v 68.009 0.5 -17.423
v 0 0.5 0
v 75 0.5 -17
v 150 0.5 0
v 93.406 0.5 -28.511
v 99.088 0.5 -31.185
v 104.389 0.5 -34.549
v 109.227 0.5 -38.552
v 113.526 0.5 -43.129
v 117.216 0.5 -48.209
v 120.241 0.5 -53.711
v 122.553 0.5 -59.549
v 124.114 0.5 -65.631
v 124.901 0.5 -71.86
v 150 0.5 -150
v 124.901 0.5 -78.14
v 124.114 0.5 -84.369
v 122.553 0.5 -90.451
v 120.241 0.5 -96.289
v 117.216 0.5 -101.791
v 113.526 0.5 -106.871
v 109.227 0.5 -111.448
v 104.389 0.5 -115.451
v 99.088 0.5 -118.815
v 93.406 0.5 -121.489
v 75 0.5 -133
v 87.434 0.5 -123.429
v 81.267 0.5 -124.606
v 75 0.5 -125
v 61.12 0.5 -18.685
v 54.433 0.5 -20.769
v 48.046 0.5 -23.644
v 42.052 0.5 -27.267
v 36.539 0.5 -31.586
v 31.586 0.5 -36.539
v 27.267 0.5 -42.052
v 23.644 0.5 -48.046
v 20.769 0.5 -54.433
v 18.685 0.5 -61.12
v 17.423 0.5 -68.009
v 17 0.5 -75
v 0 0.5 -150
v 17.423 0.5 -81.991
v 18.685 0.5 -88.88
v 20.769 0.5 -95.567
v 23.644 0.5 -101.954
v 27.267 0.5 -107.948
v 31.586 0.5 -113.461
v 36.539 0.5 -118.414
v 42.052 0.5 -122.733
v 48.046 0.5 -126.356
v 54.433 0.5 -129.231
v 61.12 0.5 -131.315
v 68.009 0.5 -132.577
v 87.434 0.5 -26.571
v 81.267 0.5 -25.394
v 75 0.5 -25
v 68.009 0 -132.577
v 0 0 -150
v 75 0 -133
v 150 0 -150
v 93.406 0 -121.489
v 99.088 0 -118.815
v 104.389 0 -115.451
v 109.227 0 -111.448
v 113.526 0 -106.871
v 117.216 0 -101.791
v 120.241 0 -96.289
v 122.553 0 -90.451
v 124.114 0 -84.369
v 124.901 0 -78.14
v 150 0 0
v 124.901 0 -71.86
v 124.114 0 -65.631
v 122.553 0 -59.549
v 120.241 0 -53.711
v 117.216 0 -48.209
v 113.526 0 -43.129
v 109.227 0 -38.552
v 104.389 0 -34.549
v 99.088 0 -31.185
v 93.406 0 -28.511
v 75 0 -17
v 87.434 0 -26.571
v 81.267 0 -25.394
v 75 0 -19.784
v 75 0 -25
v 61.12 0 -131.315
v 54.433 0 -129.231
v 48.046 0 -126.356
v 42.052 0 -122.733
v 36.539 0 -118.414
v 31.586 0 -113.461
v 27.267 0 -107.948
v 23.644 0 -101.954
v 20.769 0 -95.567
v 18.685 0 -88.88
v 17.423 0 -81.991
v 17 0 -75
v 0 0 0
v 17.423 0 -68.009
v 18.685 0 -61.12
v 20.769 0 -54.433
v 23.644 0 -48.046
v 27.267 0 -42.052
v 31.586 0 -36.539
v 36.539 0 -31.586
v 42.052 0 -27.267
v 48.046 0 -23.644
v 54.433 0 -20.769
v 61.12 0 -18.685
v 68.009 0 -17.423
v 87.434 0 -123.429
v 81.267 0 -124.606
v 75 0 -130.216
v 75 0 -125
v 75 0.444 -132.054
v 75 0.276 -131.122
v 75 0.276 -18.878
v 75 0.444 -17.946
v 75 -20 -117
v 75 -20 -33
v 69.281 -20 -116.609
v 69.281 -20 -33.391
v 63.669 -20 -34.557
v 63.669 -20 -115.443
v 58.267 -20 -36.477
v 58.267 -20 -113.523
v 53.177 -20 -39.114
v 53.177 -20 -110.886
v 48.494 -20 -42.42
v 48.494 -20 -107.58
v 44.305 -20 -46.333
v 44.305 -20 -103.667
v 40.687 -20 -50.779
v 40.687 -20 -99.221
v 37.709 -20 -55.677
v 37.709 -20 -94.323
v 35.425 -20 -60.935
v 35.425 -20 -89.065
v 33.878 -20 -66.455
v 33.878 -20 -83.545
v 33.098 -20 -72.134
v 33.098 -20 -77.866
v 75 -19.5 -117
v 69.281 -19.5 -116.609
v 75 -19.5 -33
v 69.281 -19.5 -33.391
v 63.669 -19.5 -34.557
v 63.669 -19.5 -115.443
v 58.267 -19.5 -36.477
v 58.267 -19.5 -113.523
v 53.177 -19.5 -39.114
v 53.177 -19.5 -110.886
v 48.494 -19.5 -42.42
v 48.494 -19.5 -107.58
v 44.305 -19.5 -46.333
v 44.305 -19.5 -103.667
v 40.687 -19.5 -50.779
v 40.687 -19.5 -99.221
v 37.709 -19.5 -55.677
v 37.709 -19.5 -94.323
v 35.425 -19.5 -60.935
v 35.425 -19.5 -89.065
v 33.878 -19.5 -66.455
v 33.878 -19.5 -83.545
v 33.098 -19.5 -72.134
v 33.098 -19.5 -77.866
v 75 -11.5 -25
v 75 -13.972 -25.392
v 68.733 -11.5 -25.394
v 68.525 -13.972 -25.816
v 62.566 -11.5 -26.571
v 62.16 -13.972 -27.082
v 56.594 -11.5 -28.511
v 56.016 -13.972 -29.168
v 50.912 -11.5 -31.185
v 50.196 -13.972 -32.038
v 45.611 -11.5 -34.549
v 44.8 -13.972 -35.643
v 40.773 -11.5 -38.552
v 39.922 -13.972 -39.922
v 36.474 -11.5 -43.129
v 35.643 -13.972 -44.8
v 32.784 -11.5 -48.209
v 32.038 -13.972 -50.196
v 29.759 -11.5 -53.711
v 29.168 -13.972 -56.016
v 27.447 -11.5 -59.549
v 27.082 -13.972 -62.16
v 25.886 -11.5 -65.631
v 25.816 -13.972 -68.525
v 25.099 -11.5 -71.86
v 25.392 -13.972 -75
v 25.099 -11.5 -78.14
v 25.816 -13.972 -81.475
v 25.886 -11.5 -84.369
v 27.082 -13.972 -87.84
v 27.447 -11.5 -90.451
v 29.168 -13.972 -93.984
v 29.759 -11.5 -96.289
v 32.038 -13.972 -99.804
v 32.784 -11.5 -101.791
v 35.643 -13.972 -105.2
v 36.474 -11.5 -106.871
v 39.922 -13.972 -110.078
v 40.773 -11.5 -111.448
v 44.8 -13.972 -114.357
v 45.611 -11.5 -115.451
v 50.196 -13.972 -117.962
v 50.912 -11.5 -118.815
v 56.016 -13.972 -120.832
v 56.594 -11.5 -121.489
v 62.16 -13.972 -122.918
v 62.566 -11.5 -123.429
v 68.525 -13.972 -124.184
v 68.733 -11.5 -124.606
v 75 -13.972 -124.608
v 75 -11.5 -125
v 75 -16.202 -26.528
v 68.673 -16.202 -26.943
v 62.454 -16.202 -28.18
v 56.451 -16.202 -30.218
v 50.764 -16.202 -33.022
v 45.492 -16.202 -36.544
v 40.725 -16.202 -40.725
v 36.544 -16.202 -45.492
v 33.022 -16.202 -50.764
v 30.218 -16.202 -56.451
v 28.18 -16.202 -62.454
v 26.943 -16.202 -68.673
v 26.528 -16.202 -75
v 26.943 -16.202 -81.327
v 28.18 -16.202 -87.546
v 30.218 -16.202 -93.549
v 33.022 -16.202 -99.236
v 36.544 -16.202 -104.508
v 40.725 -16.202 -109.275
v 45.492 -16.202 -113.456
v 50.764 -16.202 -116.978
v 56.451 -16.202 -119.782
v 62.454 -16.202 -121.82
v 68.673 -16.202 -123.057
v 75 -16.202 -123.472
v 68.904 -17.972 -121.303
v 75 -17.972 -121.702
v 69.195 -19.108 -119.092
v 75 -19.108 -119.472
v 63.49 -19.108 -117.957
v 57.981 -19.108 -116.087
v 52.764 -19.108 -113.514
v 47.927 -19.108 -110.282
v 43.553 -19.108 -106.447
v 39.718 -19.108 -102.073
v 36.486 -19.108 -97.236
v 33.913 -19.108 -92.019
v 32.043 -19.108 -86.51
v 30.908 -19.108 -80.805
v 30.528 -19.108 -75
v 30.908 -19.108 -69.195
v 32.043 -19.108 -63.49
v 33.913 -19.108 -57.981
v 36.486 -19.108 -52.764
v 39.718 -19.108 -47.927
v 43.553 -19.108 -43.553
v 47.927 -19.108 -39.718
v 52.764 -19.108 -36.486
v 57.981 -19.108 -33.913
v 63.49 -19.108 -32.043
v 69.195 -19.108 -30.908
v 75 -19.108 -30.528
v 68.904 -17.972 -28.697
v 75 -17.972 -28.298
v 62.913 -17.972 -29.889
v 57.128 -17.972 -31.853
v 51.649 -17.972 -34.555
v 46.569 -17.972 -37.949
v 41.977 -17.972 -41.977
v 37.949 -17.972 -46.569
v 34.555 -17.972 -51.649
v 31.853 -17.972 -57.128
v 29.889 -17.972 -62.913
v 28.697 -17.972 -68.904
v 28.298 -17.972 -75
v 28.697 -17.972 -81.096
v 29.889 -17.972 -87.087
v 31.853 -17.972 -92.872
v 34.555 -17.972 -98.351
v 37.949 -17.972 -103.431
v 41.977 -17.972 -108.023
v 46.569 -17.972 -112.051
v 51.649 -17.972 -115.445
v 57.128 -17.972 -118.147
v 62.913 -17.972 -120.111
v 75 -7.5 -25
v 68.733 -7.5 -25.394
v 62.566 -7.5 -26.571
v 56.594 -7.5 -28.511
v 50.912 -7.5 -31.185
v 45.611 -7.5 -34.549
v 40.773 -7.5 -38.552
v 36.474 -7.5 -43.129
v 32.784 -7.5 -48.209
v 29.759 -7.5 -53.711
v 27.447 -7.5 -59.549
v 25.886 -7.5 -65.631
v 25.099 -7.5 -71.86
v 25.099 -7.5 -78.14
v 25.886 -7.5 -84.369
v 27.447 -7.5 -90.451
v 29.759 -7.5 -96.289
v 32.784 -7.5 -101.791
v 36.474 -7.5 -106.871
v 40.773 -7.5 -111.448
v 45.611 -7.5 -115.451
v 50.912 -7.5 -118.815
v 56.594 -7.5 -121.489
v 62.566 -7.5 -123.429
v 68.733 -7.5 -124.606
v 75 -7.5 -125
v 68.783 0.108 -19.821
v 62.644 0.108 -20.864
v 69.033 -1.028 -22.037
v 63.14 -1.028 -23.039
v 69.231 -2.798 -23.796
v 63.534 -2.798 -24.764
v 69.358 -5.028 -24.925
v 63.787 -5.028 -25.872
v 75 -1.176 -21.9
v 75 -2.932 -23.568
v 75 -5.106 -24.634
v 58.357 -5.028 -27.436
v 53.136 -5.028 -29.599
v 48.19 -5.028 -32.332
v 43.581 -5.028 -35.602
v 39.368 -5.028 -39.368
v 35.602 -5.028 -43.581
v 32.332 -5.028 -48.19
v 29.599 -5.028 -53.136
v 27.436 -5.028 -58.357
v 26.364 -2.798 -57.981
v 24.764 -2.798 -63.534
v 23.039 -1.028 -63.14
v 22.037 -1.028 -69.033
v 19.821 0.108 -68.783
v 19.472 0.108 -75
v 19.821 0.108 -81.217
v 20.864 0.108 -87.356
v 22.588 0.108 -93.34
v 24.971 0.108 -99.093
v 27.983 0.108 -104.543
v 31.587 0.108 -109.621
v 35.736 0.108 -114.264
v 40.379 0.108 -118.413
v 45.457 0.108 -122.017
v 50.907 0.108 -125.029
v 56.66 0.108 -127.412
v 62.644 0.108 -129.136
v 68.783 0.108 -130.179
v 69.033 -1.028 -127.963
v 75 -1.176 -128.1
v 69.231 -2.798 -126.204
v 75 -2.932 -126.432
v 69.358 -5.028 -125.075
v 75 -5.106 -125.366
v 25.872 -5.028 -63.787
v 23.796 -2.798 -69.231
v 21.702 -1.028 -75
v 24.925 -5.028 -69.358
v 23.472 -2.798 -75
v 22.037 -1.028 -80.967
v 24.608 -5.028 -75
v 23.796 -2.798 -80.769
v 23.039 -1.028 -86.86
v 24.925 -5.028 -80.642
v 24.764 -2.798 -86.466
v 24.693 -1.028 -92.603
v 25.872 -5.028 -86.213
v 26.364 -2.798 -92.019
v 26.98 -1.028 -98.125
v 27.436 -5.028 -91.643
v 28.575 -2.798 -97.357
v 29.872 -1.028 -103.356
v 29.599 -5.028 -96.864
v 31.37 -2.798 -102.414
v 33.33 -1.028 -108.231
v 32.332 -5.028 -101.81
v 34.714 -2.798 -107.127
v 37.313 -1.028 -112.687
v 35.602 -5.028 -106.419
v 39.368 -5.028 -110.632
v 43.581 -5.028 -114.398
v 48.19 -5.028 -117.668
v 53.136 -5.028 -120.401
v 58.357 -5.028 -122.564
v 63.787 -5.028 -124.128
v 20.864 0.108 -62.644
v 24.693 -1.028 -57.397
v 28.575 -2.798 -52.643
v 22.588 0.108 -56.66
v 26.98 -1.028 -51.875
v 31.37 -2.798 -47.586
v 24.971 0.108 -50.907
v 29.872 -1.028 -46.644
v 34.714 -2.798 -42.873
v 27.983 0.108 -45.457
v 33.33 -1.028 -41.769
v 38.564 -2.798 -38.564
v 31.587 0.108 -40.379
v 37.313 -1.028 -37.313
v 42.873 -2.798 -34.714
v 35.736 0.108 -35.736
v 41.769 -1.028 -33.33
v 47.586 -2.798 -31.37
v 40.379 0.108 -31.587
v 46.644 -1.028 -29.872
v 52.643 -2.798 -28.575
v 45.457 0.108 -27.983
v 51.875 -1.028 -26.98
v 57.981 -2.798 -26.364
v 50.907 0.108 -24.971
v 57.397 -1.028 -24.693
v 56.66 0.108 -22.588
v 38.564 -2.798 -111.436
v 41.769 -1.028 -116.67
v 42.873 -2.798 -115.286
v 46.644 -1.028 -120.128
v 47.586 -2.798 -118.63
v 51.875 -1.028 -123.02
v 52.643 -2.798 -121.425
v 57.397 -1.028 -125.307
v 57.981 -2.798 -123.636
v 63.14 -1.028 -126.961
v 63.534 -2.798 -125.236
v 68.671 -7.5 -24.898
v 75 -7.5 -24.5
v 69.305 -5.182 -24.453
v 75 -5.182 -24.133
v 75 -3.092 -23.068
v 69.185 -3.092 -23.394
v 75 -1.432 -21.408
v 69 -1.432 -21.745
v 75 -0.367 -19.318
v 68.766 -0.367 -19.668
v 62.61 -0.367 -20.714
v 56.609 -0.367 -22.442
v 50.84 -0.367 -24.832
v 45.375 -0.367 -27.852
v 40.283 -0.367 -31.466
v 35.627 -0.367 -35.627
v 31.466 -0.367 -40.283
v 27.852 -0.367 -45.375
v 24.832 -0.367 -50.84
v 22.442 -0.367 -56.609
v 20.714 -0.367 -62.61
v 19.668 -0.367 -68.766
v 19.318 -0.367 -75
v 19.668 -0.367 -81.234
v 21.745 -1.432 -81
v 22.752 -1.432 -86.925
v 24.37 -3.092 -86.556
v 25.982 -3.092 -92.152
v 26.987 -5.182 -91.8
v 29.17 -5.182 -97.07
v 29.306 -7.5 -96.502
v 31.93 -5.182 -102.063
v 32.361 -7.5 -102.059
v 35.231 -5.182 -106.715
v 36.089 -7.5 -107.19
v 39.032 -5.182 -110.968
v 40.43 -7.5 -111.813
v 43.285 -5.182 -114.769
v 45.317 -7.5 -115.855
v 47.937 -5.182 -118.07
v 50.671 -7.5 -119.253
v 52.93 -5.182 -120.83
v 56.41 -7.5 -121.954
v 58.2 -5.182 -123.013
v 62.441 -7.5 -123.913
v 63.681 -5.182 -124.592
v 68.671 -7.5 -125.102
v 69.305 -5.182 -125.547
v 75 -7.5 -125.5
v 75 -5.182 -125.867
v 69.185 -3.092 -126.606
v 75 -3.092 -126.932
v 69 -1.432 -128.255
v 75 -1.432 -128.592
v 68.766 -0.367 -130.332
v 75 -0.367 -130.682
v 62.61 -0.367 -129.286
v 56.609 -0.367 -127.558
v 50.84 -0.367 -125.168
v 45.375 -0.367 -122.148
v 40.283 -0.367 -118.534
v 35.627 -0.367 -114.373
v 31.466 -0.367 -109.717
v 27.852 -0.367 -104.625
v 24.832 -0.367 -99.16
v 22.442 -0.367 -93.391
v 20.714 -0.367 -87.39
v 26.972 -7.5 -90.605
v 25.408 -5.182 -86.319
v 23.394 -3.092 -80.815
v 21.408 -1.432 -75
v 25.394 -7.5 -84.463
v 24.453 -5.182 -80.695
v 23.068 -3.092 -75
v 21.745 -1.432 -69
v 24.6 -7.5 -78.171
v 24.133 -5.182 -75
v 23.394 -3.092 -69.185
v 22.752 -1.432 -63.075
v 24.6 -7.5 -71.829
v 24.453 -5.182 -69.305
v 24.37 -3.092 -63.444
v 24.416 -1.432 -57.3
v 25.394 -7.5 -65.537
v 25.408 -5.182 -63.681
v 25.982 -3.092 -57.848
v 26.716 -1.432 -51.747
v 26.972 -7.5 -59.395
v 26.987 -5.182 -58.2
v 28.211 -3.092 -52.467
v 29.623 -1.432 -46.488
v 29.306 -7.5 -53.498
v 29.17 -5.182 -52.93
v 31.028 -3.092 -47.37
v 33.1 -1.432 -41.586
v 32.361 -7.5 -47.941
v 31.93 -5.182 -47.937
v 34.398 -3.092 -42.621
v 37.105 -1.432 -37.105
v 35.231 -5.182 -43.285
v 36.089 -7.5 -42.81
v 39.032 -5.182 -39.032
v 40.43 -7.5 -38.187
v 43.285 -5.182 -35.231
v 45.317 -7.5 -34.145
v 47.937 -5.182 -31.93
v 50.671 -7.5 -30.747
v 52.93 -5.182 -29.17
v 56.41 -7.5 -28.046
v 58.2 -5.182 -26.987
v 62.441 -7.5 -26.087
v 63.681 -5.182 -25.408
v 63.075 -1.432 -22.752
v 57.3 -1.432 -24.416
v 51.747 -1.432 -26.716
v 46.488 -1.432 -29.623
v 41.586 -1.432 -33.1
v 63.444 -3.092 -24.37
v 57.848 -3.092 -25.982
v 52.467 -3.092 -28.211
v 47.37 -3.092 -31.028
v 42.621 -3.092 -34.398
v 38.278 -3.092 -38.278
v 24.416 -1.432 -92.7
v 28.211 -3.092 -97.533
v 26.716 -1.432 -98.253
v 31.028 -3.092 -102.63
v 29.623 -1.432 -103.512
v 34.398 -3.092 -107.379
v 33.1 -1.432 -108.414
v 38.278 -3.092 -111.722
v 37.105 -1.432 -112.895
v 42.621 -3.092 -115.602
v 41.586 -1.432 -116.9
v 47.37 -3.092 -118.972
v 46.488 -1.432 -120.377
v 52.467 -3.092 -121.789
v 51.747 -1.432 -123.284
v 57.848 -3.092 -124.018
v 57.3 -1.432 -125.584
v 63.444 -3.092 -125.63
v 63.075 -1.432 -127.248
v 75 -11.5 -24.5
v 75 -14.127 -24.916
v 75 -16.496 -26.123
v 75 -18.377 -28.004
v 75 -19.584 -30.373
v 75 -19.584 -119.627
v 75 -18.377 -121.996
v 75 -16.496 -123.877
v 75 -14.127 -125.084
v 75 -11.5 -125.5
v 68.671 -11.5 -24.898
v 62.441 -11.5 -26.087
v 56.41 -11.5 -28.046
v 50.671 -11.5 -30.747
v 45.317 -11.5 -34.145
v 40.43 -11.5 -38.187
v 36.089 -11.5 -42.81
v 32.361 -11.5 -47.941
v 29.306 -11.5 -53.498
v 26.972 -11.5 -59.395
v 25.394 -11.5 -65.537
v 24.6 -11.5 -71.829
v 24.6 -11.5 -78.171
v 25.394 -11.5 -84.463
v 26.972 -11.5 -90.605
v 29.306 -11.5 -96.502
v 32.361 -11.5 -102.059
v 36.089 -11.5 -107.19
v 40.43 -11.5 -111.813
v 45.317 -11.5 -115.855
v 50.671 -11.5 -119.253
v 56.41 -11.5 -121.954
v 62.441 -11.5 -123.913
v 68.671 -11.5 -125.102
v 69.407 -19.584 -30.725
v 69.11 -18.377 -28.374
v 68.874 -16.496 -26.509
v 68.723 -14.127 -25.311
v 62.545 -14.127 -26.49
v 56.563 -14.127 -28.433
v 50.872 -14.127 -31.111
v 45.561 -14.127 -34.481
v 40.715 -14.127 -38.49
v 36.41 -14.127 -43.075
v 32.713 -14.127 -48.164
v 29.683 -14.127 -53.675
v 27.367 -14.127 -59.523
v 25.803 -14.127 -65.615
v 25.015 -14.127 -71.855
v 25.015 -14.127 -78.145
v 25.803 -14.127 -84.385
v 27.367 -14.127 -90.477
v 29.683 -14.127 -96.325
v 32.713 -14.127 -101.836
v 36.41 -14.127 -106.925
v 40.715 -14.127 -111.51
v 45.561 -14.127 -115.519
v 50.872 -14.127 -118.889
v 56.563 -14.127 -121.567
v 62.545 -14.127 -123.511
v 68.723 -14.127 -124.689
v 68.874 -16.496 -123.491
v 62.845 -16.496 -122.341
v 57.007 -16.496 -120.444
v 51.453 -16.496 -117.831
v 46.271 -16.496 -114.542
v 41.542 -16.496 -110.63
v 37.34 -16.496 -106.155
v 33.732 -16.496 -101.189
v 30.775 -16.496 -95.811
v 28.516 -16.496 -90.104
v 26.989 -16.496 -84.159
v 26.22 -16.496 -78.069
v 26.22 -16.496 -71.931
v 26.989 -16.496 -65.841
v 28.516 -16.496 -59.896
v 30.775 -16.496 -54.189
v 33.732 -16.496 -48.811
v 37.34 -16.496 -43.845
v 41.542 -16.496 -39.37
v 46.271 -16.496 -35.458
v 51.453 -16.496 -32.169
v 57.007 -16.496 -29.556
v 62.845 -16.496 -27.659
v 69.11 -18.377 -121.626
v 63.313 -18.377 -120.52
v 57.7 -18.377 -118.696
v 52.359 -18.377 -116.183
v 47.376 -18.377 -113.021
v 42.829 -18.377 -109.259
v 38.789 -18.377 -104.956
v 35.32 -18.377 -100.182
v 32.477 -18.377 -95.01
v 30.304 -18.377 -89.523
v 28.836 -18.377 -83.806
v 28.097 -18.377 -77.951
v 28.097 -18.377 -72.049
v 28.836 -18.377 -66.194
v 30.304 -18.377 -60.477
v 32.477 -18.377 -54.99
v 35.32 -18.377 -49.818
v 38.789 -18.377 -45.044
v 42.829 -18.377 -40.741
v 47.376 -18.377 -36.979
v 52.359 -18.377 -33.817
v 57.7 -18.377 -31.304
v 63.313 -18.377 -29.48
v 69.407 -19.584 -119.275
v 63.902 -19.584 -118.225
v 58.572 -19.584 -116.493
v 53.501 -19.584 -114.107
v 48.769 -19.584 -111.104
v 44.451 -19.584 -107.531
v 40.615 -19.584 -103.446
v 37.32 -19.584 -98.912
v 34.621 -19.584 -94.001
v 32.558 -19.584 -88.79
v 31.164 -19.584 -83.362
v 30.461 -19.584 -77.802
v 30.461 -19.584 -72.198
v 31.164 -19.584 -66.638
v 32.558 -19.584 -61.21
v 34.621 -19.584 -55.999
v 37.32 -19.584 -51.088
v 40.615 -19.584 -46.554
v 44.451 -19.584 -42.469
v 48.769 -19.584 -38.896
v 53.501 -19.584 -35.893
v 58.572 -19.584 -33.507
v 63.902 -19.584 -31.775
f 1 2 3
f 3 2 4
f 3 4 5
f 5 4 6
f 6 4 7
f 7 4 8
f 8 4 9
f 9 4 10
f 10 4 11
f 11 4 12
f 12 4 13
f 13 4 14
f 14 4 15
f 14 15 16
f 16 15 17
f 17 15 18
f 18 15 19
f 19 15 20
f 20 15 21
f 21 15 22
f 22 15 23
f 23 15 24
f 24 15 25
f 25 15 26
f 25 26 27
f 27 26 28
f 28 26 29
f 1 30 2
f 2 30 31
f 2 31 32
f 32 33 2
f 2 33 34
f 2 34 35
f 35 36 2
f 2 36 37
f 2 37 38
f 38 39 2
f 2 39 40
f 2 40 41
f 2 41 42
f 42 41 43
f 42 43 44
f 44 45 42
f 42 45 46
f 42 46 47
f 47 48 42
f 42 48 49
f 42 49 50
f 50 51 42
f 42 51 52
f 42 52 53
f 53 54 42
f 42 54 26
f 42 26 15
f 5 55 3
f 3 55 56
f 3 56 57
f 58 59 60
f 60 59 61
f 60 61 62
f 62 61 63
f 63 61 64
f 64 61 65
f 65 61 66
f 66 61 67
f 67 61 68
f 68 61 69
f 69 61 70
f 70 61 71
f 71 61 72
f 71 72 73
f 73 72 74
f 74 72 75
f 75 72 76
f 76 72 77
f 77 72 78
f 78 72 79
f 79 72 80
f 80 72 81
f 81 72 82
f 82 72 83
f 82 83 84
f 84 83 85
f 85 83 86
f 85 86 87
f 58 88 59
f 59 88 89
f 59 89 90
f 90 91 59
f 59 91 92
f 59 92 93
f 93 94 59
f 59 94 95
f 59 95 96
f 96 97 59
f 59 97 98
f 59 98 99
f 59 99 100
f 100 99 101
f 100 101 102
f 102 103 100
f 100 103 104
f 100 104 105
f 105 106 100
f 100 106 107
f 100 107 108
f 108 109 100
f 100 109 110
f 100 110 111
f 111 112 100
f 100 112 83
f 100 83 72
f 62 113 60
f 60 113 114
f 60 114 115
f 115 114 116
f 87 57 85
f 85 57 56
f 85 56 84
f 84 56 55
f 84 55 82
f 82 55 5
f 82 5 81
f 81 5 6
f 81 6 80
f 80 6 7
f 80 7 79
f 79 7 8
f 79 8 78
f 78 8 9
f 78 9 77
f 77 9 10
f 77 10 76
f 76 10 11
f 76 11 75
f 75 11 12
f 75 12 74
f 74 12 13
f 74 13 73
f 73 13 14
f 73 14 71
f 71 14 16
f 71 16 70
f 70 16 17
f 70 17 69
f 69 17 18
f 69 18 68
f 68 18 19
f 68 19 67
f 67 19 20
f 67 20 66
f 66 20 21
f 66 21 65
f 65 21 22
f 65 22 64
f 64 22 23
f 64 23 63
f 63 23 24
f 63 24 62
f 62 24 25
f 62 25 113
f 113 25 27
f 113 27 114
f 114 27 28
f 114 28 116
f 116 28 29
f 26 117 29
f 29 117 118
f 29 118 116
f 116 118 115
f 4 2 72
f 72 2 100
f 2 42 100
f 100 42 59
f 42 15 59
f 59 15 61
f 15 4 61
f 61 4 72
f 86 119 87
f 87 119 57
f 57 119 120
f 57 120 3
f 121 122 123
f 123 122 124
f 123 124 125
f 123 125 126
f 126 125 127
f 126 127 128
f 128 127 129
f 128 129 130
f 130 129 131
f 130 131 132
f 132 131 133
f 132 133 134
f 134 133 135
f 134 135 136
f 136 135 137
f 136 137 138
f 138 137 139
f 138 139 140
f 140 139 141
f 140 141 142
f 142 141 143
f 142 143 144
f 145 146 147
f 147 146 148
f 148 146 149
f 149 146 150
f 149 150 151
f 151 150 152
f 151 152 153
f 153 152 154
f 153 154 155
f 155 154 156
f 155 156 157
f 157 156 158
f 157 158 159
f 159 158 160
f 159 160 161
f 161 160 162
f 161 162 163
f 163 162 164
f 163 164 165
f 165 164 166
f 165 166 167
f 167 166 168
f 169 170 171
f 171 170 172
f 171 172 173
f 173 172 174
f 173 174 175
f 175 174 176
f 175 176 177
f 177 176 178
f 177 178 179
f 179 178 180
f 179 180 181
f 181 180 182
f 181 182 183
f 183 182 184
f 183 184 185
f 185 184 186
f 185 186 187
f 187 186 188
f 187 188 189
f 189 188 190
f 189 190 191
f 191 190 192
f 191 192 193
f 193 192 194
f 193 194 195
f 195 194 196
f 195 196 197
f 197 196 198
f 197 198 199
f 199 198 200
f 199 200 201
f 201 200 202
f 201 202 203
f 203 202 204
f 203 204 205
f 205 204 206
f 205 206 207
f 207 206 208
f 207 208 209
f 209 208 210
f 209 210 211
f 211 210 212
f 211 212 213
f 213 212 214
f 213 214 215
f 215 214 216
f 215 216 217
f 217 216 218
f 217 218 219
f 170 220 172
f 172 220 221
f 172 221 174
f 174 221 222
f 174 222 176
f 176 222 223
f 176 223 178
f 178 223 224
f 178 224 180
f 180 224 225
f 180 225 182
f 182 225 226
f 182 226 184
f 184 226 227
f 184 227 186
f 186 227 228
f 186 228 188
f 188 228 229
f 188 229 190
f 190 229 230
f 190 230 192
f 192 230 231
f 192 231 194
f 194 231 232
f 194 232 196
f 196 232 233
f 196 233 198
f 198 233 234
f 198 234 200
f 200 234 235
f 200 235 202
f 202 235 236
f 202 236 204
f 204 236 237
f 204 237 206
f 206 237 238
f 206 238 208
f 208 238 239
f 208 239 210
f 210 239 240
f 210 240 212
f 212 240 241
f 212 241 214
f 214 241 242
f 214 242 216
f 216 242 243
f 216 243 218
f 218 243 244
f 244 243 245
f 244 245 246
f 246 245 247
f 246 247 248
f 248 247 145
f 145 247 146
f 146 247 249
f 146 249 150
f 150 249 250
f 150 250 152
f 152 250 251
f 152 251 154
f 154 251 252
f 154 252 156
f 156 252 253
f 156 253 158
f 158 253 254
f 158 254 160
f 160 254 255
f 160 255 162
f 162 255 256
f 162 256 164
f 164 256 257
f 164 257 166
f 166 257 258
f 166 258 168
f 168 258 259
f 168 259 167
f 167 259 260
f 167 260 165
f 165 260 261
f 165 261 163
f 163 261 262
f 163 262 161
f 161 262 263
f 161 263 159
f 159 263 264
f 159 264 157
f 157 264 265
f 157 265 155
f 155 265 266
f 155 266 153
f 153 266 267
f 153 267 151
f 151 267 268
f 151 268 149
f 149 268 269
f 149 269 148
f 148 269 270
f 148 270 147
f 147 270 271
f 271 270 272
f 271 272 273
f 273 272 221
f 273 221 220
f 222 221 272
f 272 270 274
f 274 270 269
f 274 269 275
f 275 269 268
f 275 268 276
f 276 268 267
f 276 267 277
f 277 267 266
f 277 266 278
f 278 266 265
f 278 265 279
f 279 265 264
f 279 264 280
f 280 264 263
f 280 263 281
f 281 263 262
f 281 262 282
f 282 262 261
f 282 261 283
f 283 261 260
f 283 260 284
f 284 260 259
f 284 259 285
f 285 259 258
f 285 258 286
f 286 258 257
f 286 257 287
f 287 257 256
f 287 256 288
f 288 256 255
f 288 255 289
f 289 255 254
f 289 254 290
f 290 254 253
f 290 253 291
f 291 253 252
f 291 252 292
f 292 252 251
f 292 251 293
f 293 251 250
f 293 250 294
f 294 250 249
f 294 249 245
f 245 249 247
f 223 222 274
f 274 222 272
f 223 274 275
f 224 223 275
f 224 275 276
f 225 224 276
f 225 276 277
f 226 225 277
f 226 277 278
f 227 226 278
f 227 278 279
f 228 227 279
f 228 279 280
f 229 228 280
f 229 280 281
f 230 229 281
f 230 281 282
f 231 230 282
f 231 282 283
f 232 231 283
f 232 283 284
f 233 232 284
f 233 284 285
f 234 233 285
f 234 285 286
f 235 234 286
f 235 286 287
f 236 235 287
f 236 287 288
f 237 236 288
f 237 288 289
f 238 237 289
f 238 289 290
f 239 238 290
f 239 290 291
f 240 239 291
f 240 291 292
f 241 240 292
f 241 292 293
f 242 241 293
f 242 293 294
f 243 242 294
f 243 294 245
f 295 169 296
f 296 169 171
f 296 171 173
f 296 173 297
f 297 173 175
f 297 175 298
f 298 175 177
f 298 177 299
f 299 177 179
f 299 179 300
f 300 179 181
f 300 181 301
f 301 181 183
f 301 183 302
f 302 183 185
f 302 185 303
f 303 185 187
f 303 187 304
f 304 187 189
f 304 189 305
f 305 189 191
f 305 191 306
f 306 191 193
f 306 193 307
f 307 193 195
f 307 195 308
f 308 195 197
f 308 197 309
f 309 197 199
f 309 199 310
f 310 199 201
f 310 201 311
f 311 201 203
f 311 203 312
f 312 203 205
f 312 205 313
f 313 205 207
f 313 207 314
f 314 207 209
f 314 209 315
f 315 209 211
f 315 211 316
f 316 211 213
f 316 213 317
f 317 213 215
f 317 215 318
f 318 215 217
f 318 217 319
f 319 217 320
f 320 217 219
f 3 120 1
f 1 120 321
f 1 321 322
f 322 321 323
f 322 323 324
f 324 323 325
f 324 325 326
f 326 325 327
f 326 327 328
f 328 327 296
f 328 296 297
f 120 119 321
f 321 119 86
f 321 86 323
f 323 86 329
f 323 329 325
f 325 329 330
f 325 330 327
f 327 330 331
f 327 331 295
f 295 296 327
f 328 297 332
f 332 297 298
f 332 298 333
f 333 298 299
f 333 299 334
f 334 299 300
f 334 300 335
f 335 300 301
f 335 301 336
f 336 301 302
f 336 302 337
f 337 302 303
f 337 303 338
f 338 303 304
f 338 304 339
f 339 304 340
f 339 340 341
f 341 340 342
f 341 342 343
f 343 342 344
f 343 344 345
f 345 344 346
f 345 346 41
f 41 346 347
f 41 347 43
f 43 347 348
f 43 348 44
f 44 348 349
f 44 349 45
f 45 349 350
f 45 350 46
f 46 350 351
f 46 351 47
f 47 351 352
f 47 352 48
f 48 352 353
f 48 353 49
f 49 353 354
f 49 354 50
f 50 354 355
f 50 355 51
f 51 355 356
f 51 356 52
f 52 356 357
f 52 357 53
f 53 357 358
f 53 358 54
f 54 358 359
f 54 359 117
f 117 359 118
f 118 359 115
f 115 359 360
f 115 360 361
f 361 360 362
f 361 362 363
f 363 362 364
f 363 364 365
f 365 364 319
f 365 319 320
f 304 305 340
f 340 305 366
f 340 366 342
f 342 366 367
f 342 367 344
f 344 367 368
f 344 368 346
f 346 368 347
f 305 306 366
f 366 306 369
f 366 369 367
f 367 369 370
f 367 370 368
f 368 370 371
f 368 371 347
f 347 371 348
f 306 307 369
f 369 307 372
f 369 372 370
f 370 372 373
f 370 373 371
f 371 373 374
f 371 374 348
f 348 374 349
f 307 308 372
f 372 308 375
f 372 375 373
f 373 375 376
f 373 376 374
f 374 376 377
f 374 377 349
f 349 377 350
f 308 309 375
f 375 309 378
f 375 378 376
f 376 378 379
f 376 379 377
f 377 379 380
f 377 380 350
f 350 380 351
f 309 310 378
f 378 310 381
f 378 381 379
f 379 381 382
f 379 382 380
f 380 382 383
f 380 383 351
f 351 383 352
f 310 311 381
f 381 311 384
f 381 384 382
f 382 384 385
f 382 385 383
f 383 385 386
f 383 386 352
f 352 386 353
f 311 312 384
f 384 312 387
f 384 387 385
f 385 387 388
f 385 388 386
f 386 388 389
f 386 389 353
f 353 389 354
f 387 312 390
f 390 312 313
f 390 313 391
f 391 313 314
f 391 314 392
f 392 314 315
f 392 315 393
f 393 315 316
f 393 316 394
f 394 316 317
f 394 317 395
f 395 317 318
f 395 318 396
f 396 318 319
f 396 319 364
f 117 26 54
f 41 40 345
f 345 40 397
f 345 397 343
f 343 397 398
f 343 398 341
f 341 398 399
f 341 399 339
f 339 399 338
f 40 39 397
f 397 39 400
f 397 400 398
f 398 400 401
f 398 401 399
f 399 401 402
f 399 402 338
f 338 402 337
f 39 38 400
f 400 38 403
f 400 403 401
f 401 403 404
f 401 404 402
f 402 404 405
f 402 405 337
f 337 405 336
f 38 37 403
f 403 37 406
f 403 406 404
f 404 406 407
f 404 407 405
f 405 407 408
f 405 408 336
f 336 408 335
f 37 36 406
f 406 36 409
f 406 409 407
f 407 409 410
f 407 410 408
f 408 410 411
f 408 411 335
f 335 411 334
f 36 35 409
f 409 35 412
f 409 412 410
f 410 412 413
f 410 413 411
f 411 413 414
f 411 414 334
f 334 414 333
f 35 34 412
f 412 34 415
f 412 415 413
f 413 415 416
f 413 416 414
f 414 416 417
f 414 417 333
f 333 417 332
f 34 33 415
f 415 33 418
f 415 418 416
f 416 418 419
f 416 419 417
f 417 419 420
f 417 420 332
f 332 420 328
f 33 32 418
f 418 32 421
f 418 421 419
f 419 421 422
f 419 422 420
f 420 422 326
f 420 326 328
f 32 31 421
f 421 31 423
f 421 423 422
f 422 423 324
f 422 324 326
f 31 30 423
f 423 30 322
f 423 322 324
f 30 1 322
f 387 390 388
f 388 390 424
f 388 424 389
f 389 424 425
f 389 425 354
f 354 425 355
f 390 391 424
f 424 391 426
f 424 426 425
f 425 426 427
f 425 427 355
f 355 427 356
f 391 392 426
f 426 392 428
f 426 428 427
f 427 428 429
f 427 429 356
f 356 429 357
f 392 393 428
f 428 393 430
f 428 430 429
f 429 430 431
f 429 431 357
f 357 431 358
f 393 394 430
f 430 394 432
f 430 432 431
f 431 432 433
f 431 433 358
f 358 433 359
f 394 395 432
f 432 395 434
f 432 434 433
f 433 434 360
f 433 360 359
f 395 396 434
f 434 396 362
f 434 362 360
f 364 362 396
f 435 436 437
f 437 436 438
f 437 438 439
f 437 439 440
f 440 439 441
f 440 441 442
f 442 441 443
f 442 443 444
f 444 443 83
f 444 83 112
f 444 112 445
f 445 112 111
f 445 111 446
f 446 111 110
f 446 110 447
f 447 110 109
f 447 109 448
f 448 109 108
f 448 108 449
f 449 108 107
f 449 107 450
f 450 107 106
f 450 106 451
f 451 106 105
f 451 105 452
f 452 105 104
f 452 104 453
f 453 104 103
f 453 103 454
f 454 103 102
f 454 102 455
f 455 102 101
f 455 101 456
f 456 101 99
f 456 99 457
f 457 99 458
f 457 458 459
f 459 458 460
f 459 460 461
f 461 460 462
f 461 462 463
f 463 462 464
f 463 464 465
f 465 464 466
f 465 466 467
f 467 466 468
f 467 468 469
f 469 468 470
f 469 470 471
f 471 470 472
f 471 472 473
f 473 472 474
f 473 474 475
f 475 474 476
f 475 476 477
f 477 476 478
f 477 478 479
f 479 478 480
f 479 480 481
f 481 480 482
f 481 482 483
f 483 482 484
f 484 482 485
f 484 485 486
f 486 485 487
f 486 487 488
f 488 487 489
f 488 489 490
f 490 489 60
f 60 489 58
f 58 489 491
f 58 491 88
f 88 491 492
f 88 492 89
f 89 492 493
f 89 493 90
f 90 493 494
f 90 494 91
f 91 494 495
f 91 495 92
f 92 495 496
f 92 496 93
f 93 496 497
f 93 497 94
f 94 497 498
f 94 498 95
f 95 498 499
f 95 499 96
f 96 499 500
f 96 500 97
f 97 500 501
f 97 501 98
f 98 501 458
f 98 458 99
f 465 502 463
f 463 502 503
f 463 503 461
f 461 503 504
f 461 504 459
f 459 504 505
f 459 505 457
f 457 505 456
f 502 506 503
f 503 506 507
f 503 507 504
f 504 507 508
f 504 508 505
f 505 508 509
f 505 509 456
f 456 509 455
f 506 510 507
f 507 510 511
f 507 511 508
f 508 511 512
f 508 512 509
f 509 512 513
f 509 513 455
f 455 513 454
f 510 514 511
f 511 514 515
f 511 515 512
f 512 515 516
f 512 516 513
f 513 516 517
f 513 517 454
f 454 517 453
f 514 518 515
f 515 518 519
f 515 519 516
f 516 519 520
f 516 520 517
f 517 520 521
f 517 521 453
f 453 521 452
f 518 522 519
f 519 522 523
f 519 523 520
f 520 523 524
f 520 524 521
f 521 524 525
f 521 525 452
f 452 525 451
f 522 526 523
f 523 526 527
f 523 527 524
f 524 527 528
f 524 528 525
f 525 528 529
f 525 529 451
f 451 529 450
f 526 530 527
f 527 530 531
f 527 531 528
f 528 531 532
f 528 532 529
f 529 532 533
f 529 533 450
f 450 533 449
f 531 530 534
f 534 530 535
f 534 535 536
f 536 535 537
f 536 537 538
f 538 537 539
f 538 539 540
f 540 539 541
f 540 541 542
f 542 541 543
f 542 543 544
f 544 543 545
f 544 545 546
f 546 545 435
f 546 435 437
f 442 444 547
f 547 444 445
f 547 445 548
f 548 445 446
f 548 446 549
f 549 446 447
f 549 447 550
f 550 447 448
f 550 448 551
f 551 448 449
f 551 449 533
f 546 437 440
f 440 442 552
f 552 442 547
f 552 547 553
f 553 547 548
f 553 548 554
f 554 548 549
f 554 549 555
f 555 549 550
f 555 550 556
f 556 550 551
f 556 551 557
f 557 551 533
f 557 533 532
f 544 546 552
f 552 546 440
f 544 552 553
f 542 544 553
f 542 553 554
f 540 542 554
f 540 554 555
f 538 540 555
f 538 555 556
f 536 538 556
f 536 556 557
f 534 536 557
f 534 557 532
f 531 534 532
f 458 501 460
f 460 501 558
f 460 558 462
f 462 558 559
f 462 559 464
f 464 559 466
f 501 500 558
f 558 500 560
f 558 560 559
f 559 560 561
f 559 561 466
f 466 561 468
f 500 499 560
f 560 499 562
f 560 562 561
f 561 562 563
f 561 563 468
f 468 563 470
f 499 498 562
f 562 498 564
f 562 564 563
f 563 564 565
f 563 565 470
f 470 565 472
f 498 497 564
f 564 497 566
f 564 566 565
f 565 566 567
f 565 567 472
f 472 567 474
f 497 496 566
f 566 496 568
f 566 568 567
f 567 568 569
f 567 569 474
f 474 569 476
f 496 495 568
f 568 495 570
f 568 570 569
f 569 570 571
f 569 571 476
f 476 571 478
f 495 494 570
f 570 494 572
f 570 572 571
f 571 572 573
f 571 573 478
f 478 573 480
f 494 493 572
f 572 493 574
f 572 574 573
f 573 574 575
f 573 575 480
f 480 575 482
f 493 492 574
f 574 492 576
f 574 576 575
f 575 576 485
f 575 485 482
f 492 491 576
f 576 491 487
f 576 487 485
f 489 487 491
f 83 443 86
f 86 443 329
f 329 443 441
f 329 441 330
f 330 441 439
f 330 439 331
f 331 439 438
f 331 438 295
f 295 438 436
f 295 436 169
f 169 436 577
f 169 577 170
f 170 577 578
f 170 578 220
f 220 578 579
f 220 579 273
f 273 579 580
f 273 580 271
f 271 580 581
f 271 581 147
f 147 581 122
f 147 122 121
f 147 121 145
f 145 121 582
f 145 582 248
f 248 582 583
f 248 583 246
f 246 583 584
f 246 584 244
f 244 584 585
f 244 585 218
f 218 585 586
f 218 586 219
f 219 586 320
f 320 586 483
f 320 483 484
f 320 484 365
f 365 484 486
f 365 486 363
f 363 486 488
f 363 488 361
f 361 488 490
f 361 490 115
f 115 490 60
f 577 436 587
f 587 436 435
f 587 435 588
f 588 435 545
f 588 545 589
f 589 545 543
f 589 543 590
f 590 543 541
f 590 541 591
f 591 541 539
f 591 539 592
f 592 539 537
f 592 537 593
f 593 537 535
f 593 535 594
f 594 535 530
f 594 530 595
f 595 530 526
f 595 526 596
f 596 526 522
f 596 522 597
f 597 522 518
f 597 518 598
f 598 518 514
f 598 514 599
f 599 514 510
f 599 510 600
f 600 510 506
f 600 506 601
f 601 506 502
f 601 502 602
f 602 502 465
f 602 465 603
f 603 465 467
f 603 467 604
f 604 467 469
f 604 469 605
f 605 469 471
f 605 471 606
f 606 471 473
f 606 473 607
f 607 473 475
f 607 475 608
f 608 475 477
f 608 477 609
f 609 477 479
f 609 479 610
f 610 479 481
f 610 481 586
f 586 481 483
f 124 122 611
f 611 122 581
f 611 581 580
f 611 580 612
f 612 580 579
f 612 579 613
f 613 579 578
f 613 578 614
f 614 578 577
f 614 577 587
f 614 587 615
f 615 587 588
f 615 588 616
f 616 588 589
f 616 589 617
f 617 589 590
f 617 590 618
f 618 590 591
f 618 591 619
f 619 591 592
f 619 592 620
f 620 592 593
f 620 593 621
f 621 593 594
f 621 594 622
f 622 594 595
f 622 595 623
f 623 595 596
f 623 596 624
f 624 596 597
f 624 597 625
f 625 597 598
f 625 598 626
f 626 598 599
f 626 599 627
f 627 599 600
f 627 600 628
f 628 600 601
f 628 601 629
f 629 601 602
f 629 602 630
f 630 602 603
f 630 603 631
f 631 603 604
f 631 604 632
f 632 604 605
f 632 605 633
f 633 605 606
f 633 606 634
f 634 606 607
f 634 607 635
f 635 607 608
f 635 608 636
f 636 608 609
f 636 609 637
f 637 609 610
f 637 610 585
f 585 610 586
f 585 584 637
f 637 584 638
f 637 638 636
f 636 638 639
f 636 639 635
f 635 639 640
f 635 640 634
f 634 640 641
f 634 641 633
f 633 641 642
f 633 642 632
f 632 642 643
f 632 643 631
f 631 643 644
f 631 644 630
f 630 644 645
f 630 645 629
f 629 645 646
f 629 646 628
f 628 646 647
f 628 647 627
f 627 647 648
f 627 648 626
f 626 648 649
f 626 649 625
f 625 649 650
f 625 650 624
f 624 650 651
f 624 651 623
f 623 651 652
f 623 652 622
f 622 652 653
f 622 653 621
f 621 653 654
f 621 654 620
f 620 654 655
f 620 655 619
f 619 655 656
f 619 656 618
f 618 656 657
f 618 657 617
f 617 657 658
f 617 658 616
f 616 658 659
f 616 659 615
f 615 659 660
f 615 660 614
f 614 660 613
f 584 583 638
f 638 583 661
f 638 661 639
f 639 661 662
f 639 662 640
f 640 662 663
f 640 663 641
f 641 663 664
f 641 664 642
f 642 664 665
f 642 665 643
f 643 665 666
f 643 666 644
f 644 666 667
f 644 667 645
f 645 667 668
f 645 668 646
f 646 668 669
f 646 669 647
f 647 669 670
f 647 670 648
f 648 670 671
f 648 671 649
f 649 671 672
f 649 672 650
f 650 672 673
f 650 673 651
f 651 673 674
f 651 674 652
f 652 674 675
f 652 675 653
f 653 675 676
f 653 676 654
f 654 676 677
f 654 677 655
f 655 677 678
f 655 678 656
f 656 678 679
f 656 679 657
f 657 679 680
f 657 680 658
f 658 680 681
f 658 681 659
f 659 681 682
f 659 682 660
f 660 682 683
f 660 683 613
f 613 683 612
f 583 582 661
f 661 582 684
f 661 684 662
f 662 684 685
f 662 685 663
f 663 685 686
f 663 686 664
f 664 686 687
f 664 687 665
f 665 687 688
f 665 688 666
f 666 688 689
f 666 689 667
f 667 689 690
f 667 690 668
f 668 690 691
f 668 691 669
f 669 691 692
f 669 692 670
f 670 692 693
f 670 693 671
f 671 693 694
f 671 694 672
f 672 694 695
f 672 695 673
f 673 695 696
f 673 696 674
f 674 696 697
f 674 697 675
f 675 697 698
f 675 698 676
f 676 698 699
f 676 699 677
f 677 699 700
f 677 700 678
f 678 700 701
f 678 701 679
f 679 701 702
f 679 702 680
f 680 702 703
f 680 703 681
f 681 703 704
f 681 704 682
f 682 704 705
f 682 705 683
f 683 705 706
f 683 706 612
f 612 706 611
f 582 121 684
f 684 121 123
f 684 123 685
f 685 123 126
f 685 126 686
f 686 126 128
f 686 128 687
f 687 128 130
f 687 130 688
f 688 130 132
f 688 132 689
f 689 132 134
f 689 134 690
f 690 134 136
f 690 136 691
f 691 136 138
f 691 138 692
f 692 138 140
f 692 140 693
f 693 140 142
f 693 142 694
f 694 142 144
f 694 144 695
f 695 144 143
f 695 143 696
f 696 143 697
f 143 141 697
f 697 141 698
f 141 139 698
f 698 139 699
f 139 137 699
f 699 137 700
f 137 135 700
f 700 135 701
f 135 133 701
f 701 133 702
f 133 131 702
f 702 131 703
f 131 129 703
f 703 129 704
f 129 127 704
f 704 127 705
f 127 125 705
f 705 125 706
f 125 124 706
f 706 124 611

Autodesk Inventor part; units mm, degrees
ref_plane "YZ Plane" through (0, 0, 0) normal (1, 0, 0) x (0, 1, 0)
ref_plane "XZ Plane" through (0, 0, 0) normal (0, 1, 0) x (-1, 0, 0)
sketch "Sketch1" plane through (0, 0, 0) normal (0, 1, 0) x (-1, 0, 0)
  line L0 (0, 0) -> (-150, 0)
  line L1 (-150, 0) -> (-150, -150)
  line L2 (-150, -150) -> (0, -150)
  line L3 (0, -150) -> (0, 0)
  dimension "d0" = 150
  dimension "d1" = 150
extrude "Plate1" add sketch "Sketch1" along normal blind 0.5
sketch "Sketch2" plane through (0, 0.5, 0) normal (0, 1, 0) x (1, 0, 0)
  arc A0 (75, 133) -> (75, 17) centre (75, 75) ccw
  line L0 (0, 0) -> (0, 150) projected
  line L1 (0, 150) -> (150, 150) projected
  line L2 (75, 17) -> (75, 133) construction
  arc A1 (75, 25) -> (75, 125) centre (75, 75) ccw
  line L3 (75, 125) -> (75, 133)
  line L4 (75, 25) -> (75, 17)
  arc A2 (75, 17) -> (75, 133) centre (75, 75) ccw construction
  dimension "d3" = 75
  dimension "d4" = 75
  dimension "d5" = 116
  dimension "d7" = 50
extrude "Extrusion1" cut sketch "Sketch2" against normal blind 0.5
ref_plane "Work Plane1" through (75, 0.5, -75) normal (0, 0, -1) x (-1, 0, 0)
sketch "Sketch3" plane through (75, 0.5, -75) normal (0, 0, -1) x (-1, 0, 0)
  line L0 (58, 0) -> (0, 0) construction
  line L1 (0, 0) -> (0, -0.5) projected
  line L2 (0, 0) -> (0, -20)
  line L3 (0, -20) -> (42, -20)
  arc A0 (42, -20) -> (50, -12) centre (42, -12) ccw
  line L4 (50, -12) -> (50, -8)
  arc A1 (58, 0) -> (50, -8) centre (58, -8) ccw
  line L5 (58, 0) -> (58, -0.5)
  arc A2 (58, -0.5) -> (50.5, -8) centre (58, -8) ccw
  line L6 (50.5, -8) -> (50.5, -12)
  arc A3 (42, -20.5) -> (50.5, -12) centre (42, -12) ccw
  line L7 (42, -20.5) -> (0, -20.5)
  line L8 (0, -20.5) -> (0, -20)
  line L9 (42, -20) -> (42, -20.5) construction
  line L10 (50.5, -8) -> (50, -8) construction
  point P0 (75, -0.5)
  dimension "d10" = 20
  dimension "d12" = 8
  dimension "d13" = 8
  dimension "d14" = 0.5
  dimension "d15" = 0.5
  dimension "d16" = 0.5
revolve "Revolution1" add sketch "Sketch3" angle 180 mid plane about axis through (75, 0.5, -75) along (0, -1, 0)
equation "\"d8\" = Thickness"
equation "\"d14\" = Thickness"
equation "\"d15\" = Thickness"
equation "\"d16\" = Thickness"
equation "\"d2\" = Thickness"
equation "\"BendRadius\" = Thickness"
equation "\"BendReliefWidth\" = Thickness"
equation "\"BendReliefDepth\" = 0.5 * Thickness"
equation "\"CornerReliefSize\" = 4 * Thickness"
equation "\"MinimumRemnant\" = 2 * Thickness"
equation "\"TransitionRadius\" = BendRadius"
equation "\"JacobiRadiusSize\" = BendRadius"
equation "\"GapSize\" = Thickness"
equation "\"Thickness\" = 0.5"
properties part number "A3.2"
